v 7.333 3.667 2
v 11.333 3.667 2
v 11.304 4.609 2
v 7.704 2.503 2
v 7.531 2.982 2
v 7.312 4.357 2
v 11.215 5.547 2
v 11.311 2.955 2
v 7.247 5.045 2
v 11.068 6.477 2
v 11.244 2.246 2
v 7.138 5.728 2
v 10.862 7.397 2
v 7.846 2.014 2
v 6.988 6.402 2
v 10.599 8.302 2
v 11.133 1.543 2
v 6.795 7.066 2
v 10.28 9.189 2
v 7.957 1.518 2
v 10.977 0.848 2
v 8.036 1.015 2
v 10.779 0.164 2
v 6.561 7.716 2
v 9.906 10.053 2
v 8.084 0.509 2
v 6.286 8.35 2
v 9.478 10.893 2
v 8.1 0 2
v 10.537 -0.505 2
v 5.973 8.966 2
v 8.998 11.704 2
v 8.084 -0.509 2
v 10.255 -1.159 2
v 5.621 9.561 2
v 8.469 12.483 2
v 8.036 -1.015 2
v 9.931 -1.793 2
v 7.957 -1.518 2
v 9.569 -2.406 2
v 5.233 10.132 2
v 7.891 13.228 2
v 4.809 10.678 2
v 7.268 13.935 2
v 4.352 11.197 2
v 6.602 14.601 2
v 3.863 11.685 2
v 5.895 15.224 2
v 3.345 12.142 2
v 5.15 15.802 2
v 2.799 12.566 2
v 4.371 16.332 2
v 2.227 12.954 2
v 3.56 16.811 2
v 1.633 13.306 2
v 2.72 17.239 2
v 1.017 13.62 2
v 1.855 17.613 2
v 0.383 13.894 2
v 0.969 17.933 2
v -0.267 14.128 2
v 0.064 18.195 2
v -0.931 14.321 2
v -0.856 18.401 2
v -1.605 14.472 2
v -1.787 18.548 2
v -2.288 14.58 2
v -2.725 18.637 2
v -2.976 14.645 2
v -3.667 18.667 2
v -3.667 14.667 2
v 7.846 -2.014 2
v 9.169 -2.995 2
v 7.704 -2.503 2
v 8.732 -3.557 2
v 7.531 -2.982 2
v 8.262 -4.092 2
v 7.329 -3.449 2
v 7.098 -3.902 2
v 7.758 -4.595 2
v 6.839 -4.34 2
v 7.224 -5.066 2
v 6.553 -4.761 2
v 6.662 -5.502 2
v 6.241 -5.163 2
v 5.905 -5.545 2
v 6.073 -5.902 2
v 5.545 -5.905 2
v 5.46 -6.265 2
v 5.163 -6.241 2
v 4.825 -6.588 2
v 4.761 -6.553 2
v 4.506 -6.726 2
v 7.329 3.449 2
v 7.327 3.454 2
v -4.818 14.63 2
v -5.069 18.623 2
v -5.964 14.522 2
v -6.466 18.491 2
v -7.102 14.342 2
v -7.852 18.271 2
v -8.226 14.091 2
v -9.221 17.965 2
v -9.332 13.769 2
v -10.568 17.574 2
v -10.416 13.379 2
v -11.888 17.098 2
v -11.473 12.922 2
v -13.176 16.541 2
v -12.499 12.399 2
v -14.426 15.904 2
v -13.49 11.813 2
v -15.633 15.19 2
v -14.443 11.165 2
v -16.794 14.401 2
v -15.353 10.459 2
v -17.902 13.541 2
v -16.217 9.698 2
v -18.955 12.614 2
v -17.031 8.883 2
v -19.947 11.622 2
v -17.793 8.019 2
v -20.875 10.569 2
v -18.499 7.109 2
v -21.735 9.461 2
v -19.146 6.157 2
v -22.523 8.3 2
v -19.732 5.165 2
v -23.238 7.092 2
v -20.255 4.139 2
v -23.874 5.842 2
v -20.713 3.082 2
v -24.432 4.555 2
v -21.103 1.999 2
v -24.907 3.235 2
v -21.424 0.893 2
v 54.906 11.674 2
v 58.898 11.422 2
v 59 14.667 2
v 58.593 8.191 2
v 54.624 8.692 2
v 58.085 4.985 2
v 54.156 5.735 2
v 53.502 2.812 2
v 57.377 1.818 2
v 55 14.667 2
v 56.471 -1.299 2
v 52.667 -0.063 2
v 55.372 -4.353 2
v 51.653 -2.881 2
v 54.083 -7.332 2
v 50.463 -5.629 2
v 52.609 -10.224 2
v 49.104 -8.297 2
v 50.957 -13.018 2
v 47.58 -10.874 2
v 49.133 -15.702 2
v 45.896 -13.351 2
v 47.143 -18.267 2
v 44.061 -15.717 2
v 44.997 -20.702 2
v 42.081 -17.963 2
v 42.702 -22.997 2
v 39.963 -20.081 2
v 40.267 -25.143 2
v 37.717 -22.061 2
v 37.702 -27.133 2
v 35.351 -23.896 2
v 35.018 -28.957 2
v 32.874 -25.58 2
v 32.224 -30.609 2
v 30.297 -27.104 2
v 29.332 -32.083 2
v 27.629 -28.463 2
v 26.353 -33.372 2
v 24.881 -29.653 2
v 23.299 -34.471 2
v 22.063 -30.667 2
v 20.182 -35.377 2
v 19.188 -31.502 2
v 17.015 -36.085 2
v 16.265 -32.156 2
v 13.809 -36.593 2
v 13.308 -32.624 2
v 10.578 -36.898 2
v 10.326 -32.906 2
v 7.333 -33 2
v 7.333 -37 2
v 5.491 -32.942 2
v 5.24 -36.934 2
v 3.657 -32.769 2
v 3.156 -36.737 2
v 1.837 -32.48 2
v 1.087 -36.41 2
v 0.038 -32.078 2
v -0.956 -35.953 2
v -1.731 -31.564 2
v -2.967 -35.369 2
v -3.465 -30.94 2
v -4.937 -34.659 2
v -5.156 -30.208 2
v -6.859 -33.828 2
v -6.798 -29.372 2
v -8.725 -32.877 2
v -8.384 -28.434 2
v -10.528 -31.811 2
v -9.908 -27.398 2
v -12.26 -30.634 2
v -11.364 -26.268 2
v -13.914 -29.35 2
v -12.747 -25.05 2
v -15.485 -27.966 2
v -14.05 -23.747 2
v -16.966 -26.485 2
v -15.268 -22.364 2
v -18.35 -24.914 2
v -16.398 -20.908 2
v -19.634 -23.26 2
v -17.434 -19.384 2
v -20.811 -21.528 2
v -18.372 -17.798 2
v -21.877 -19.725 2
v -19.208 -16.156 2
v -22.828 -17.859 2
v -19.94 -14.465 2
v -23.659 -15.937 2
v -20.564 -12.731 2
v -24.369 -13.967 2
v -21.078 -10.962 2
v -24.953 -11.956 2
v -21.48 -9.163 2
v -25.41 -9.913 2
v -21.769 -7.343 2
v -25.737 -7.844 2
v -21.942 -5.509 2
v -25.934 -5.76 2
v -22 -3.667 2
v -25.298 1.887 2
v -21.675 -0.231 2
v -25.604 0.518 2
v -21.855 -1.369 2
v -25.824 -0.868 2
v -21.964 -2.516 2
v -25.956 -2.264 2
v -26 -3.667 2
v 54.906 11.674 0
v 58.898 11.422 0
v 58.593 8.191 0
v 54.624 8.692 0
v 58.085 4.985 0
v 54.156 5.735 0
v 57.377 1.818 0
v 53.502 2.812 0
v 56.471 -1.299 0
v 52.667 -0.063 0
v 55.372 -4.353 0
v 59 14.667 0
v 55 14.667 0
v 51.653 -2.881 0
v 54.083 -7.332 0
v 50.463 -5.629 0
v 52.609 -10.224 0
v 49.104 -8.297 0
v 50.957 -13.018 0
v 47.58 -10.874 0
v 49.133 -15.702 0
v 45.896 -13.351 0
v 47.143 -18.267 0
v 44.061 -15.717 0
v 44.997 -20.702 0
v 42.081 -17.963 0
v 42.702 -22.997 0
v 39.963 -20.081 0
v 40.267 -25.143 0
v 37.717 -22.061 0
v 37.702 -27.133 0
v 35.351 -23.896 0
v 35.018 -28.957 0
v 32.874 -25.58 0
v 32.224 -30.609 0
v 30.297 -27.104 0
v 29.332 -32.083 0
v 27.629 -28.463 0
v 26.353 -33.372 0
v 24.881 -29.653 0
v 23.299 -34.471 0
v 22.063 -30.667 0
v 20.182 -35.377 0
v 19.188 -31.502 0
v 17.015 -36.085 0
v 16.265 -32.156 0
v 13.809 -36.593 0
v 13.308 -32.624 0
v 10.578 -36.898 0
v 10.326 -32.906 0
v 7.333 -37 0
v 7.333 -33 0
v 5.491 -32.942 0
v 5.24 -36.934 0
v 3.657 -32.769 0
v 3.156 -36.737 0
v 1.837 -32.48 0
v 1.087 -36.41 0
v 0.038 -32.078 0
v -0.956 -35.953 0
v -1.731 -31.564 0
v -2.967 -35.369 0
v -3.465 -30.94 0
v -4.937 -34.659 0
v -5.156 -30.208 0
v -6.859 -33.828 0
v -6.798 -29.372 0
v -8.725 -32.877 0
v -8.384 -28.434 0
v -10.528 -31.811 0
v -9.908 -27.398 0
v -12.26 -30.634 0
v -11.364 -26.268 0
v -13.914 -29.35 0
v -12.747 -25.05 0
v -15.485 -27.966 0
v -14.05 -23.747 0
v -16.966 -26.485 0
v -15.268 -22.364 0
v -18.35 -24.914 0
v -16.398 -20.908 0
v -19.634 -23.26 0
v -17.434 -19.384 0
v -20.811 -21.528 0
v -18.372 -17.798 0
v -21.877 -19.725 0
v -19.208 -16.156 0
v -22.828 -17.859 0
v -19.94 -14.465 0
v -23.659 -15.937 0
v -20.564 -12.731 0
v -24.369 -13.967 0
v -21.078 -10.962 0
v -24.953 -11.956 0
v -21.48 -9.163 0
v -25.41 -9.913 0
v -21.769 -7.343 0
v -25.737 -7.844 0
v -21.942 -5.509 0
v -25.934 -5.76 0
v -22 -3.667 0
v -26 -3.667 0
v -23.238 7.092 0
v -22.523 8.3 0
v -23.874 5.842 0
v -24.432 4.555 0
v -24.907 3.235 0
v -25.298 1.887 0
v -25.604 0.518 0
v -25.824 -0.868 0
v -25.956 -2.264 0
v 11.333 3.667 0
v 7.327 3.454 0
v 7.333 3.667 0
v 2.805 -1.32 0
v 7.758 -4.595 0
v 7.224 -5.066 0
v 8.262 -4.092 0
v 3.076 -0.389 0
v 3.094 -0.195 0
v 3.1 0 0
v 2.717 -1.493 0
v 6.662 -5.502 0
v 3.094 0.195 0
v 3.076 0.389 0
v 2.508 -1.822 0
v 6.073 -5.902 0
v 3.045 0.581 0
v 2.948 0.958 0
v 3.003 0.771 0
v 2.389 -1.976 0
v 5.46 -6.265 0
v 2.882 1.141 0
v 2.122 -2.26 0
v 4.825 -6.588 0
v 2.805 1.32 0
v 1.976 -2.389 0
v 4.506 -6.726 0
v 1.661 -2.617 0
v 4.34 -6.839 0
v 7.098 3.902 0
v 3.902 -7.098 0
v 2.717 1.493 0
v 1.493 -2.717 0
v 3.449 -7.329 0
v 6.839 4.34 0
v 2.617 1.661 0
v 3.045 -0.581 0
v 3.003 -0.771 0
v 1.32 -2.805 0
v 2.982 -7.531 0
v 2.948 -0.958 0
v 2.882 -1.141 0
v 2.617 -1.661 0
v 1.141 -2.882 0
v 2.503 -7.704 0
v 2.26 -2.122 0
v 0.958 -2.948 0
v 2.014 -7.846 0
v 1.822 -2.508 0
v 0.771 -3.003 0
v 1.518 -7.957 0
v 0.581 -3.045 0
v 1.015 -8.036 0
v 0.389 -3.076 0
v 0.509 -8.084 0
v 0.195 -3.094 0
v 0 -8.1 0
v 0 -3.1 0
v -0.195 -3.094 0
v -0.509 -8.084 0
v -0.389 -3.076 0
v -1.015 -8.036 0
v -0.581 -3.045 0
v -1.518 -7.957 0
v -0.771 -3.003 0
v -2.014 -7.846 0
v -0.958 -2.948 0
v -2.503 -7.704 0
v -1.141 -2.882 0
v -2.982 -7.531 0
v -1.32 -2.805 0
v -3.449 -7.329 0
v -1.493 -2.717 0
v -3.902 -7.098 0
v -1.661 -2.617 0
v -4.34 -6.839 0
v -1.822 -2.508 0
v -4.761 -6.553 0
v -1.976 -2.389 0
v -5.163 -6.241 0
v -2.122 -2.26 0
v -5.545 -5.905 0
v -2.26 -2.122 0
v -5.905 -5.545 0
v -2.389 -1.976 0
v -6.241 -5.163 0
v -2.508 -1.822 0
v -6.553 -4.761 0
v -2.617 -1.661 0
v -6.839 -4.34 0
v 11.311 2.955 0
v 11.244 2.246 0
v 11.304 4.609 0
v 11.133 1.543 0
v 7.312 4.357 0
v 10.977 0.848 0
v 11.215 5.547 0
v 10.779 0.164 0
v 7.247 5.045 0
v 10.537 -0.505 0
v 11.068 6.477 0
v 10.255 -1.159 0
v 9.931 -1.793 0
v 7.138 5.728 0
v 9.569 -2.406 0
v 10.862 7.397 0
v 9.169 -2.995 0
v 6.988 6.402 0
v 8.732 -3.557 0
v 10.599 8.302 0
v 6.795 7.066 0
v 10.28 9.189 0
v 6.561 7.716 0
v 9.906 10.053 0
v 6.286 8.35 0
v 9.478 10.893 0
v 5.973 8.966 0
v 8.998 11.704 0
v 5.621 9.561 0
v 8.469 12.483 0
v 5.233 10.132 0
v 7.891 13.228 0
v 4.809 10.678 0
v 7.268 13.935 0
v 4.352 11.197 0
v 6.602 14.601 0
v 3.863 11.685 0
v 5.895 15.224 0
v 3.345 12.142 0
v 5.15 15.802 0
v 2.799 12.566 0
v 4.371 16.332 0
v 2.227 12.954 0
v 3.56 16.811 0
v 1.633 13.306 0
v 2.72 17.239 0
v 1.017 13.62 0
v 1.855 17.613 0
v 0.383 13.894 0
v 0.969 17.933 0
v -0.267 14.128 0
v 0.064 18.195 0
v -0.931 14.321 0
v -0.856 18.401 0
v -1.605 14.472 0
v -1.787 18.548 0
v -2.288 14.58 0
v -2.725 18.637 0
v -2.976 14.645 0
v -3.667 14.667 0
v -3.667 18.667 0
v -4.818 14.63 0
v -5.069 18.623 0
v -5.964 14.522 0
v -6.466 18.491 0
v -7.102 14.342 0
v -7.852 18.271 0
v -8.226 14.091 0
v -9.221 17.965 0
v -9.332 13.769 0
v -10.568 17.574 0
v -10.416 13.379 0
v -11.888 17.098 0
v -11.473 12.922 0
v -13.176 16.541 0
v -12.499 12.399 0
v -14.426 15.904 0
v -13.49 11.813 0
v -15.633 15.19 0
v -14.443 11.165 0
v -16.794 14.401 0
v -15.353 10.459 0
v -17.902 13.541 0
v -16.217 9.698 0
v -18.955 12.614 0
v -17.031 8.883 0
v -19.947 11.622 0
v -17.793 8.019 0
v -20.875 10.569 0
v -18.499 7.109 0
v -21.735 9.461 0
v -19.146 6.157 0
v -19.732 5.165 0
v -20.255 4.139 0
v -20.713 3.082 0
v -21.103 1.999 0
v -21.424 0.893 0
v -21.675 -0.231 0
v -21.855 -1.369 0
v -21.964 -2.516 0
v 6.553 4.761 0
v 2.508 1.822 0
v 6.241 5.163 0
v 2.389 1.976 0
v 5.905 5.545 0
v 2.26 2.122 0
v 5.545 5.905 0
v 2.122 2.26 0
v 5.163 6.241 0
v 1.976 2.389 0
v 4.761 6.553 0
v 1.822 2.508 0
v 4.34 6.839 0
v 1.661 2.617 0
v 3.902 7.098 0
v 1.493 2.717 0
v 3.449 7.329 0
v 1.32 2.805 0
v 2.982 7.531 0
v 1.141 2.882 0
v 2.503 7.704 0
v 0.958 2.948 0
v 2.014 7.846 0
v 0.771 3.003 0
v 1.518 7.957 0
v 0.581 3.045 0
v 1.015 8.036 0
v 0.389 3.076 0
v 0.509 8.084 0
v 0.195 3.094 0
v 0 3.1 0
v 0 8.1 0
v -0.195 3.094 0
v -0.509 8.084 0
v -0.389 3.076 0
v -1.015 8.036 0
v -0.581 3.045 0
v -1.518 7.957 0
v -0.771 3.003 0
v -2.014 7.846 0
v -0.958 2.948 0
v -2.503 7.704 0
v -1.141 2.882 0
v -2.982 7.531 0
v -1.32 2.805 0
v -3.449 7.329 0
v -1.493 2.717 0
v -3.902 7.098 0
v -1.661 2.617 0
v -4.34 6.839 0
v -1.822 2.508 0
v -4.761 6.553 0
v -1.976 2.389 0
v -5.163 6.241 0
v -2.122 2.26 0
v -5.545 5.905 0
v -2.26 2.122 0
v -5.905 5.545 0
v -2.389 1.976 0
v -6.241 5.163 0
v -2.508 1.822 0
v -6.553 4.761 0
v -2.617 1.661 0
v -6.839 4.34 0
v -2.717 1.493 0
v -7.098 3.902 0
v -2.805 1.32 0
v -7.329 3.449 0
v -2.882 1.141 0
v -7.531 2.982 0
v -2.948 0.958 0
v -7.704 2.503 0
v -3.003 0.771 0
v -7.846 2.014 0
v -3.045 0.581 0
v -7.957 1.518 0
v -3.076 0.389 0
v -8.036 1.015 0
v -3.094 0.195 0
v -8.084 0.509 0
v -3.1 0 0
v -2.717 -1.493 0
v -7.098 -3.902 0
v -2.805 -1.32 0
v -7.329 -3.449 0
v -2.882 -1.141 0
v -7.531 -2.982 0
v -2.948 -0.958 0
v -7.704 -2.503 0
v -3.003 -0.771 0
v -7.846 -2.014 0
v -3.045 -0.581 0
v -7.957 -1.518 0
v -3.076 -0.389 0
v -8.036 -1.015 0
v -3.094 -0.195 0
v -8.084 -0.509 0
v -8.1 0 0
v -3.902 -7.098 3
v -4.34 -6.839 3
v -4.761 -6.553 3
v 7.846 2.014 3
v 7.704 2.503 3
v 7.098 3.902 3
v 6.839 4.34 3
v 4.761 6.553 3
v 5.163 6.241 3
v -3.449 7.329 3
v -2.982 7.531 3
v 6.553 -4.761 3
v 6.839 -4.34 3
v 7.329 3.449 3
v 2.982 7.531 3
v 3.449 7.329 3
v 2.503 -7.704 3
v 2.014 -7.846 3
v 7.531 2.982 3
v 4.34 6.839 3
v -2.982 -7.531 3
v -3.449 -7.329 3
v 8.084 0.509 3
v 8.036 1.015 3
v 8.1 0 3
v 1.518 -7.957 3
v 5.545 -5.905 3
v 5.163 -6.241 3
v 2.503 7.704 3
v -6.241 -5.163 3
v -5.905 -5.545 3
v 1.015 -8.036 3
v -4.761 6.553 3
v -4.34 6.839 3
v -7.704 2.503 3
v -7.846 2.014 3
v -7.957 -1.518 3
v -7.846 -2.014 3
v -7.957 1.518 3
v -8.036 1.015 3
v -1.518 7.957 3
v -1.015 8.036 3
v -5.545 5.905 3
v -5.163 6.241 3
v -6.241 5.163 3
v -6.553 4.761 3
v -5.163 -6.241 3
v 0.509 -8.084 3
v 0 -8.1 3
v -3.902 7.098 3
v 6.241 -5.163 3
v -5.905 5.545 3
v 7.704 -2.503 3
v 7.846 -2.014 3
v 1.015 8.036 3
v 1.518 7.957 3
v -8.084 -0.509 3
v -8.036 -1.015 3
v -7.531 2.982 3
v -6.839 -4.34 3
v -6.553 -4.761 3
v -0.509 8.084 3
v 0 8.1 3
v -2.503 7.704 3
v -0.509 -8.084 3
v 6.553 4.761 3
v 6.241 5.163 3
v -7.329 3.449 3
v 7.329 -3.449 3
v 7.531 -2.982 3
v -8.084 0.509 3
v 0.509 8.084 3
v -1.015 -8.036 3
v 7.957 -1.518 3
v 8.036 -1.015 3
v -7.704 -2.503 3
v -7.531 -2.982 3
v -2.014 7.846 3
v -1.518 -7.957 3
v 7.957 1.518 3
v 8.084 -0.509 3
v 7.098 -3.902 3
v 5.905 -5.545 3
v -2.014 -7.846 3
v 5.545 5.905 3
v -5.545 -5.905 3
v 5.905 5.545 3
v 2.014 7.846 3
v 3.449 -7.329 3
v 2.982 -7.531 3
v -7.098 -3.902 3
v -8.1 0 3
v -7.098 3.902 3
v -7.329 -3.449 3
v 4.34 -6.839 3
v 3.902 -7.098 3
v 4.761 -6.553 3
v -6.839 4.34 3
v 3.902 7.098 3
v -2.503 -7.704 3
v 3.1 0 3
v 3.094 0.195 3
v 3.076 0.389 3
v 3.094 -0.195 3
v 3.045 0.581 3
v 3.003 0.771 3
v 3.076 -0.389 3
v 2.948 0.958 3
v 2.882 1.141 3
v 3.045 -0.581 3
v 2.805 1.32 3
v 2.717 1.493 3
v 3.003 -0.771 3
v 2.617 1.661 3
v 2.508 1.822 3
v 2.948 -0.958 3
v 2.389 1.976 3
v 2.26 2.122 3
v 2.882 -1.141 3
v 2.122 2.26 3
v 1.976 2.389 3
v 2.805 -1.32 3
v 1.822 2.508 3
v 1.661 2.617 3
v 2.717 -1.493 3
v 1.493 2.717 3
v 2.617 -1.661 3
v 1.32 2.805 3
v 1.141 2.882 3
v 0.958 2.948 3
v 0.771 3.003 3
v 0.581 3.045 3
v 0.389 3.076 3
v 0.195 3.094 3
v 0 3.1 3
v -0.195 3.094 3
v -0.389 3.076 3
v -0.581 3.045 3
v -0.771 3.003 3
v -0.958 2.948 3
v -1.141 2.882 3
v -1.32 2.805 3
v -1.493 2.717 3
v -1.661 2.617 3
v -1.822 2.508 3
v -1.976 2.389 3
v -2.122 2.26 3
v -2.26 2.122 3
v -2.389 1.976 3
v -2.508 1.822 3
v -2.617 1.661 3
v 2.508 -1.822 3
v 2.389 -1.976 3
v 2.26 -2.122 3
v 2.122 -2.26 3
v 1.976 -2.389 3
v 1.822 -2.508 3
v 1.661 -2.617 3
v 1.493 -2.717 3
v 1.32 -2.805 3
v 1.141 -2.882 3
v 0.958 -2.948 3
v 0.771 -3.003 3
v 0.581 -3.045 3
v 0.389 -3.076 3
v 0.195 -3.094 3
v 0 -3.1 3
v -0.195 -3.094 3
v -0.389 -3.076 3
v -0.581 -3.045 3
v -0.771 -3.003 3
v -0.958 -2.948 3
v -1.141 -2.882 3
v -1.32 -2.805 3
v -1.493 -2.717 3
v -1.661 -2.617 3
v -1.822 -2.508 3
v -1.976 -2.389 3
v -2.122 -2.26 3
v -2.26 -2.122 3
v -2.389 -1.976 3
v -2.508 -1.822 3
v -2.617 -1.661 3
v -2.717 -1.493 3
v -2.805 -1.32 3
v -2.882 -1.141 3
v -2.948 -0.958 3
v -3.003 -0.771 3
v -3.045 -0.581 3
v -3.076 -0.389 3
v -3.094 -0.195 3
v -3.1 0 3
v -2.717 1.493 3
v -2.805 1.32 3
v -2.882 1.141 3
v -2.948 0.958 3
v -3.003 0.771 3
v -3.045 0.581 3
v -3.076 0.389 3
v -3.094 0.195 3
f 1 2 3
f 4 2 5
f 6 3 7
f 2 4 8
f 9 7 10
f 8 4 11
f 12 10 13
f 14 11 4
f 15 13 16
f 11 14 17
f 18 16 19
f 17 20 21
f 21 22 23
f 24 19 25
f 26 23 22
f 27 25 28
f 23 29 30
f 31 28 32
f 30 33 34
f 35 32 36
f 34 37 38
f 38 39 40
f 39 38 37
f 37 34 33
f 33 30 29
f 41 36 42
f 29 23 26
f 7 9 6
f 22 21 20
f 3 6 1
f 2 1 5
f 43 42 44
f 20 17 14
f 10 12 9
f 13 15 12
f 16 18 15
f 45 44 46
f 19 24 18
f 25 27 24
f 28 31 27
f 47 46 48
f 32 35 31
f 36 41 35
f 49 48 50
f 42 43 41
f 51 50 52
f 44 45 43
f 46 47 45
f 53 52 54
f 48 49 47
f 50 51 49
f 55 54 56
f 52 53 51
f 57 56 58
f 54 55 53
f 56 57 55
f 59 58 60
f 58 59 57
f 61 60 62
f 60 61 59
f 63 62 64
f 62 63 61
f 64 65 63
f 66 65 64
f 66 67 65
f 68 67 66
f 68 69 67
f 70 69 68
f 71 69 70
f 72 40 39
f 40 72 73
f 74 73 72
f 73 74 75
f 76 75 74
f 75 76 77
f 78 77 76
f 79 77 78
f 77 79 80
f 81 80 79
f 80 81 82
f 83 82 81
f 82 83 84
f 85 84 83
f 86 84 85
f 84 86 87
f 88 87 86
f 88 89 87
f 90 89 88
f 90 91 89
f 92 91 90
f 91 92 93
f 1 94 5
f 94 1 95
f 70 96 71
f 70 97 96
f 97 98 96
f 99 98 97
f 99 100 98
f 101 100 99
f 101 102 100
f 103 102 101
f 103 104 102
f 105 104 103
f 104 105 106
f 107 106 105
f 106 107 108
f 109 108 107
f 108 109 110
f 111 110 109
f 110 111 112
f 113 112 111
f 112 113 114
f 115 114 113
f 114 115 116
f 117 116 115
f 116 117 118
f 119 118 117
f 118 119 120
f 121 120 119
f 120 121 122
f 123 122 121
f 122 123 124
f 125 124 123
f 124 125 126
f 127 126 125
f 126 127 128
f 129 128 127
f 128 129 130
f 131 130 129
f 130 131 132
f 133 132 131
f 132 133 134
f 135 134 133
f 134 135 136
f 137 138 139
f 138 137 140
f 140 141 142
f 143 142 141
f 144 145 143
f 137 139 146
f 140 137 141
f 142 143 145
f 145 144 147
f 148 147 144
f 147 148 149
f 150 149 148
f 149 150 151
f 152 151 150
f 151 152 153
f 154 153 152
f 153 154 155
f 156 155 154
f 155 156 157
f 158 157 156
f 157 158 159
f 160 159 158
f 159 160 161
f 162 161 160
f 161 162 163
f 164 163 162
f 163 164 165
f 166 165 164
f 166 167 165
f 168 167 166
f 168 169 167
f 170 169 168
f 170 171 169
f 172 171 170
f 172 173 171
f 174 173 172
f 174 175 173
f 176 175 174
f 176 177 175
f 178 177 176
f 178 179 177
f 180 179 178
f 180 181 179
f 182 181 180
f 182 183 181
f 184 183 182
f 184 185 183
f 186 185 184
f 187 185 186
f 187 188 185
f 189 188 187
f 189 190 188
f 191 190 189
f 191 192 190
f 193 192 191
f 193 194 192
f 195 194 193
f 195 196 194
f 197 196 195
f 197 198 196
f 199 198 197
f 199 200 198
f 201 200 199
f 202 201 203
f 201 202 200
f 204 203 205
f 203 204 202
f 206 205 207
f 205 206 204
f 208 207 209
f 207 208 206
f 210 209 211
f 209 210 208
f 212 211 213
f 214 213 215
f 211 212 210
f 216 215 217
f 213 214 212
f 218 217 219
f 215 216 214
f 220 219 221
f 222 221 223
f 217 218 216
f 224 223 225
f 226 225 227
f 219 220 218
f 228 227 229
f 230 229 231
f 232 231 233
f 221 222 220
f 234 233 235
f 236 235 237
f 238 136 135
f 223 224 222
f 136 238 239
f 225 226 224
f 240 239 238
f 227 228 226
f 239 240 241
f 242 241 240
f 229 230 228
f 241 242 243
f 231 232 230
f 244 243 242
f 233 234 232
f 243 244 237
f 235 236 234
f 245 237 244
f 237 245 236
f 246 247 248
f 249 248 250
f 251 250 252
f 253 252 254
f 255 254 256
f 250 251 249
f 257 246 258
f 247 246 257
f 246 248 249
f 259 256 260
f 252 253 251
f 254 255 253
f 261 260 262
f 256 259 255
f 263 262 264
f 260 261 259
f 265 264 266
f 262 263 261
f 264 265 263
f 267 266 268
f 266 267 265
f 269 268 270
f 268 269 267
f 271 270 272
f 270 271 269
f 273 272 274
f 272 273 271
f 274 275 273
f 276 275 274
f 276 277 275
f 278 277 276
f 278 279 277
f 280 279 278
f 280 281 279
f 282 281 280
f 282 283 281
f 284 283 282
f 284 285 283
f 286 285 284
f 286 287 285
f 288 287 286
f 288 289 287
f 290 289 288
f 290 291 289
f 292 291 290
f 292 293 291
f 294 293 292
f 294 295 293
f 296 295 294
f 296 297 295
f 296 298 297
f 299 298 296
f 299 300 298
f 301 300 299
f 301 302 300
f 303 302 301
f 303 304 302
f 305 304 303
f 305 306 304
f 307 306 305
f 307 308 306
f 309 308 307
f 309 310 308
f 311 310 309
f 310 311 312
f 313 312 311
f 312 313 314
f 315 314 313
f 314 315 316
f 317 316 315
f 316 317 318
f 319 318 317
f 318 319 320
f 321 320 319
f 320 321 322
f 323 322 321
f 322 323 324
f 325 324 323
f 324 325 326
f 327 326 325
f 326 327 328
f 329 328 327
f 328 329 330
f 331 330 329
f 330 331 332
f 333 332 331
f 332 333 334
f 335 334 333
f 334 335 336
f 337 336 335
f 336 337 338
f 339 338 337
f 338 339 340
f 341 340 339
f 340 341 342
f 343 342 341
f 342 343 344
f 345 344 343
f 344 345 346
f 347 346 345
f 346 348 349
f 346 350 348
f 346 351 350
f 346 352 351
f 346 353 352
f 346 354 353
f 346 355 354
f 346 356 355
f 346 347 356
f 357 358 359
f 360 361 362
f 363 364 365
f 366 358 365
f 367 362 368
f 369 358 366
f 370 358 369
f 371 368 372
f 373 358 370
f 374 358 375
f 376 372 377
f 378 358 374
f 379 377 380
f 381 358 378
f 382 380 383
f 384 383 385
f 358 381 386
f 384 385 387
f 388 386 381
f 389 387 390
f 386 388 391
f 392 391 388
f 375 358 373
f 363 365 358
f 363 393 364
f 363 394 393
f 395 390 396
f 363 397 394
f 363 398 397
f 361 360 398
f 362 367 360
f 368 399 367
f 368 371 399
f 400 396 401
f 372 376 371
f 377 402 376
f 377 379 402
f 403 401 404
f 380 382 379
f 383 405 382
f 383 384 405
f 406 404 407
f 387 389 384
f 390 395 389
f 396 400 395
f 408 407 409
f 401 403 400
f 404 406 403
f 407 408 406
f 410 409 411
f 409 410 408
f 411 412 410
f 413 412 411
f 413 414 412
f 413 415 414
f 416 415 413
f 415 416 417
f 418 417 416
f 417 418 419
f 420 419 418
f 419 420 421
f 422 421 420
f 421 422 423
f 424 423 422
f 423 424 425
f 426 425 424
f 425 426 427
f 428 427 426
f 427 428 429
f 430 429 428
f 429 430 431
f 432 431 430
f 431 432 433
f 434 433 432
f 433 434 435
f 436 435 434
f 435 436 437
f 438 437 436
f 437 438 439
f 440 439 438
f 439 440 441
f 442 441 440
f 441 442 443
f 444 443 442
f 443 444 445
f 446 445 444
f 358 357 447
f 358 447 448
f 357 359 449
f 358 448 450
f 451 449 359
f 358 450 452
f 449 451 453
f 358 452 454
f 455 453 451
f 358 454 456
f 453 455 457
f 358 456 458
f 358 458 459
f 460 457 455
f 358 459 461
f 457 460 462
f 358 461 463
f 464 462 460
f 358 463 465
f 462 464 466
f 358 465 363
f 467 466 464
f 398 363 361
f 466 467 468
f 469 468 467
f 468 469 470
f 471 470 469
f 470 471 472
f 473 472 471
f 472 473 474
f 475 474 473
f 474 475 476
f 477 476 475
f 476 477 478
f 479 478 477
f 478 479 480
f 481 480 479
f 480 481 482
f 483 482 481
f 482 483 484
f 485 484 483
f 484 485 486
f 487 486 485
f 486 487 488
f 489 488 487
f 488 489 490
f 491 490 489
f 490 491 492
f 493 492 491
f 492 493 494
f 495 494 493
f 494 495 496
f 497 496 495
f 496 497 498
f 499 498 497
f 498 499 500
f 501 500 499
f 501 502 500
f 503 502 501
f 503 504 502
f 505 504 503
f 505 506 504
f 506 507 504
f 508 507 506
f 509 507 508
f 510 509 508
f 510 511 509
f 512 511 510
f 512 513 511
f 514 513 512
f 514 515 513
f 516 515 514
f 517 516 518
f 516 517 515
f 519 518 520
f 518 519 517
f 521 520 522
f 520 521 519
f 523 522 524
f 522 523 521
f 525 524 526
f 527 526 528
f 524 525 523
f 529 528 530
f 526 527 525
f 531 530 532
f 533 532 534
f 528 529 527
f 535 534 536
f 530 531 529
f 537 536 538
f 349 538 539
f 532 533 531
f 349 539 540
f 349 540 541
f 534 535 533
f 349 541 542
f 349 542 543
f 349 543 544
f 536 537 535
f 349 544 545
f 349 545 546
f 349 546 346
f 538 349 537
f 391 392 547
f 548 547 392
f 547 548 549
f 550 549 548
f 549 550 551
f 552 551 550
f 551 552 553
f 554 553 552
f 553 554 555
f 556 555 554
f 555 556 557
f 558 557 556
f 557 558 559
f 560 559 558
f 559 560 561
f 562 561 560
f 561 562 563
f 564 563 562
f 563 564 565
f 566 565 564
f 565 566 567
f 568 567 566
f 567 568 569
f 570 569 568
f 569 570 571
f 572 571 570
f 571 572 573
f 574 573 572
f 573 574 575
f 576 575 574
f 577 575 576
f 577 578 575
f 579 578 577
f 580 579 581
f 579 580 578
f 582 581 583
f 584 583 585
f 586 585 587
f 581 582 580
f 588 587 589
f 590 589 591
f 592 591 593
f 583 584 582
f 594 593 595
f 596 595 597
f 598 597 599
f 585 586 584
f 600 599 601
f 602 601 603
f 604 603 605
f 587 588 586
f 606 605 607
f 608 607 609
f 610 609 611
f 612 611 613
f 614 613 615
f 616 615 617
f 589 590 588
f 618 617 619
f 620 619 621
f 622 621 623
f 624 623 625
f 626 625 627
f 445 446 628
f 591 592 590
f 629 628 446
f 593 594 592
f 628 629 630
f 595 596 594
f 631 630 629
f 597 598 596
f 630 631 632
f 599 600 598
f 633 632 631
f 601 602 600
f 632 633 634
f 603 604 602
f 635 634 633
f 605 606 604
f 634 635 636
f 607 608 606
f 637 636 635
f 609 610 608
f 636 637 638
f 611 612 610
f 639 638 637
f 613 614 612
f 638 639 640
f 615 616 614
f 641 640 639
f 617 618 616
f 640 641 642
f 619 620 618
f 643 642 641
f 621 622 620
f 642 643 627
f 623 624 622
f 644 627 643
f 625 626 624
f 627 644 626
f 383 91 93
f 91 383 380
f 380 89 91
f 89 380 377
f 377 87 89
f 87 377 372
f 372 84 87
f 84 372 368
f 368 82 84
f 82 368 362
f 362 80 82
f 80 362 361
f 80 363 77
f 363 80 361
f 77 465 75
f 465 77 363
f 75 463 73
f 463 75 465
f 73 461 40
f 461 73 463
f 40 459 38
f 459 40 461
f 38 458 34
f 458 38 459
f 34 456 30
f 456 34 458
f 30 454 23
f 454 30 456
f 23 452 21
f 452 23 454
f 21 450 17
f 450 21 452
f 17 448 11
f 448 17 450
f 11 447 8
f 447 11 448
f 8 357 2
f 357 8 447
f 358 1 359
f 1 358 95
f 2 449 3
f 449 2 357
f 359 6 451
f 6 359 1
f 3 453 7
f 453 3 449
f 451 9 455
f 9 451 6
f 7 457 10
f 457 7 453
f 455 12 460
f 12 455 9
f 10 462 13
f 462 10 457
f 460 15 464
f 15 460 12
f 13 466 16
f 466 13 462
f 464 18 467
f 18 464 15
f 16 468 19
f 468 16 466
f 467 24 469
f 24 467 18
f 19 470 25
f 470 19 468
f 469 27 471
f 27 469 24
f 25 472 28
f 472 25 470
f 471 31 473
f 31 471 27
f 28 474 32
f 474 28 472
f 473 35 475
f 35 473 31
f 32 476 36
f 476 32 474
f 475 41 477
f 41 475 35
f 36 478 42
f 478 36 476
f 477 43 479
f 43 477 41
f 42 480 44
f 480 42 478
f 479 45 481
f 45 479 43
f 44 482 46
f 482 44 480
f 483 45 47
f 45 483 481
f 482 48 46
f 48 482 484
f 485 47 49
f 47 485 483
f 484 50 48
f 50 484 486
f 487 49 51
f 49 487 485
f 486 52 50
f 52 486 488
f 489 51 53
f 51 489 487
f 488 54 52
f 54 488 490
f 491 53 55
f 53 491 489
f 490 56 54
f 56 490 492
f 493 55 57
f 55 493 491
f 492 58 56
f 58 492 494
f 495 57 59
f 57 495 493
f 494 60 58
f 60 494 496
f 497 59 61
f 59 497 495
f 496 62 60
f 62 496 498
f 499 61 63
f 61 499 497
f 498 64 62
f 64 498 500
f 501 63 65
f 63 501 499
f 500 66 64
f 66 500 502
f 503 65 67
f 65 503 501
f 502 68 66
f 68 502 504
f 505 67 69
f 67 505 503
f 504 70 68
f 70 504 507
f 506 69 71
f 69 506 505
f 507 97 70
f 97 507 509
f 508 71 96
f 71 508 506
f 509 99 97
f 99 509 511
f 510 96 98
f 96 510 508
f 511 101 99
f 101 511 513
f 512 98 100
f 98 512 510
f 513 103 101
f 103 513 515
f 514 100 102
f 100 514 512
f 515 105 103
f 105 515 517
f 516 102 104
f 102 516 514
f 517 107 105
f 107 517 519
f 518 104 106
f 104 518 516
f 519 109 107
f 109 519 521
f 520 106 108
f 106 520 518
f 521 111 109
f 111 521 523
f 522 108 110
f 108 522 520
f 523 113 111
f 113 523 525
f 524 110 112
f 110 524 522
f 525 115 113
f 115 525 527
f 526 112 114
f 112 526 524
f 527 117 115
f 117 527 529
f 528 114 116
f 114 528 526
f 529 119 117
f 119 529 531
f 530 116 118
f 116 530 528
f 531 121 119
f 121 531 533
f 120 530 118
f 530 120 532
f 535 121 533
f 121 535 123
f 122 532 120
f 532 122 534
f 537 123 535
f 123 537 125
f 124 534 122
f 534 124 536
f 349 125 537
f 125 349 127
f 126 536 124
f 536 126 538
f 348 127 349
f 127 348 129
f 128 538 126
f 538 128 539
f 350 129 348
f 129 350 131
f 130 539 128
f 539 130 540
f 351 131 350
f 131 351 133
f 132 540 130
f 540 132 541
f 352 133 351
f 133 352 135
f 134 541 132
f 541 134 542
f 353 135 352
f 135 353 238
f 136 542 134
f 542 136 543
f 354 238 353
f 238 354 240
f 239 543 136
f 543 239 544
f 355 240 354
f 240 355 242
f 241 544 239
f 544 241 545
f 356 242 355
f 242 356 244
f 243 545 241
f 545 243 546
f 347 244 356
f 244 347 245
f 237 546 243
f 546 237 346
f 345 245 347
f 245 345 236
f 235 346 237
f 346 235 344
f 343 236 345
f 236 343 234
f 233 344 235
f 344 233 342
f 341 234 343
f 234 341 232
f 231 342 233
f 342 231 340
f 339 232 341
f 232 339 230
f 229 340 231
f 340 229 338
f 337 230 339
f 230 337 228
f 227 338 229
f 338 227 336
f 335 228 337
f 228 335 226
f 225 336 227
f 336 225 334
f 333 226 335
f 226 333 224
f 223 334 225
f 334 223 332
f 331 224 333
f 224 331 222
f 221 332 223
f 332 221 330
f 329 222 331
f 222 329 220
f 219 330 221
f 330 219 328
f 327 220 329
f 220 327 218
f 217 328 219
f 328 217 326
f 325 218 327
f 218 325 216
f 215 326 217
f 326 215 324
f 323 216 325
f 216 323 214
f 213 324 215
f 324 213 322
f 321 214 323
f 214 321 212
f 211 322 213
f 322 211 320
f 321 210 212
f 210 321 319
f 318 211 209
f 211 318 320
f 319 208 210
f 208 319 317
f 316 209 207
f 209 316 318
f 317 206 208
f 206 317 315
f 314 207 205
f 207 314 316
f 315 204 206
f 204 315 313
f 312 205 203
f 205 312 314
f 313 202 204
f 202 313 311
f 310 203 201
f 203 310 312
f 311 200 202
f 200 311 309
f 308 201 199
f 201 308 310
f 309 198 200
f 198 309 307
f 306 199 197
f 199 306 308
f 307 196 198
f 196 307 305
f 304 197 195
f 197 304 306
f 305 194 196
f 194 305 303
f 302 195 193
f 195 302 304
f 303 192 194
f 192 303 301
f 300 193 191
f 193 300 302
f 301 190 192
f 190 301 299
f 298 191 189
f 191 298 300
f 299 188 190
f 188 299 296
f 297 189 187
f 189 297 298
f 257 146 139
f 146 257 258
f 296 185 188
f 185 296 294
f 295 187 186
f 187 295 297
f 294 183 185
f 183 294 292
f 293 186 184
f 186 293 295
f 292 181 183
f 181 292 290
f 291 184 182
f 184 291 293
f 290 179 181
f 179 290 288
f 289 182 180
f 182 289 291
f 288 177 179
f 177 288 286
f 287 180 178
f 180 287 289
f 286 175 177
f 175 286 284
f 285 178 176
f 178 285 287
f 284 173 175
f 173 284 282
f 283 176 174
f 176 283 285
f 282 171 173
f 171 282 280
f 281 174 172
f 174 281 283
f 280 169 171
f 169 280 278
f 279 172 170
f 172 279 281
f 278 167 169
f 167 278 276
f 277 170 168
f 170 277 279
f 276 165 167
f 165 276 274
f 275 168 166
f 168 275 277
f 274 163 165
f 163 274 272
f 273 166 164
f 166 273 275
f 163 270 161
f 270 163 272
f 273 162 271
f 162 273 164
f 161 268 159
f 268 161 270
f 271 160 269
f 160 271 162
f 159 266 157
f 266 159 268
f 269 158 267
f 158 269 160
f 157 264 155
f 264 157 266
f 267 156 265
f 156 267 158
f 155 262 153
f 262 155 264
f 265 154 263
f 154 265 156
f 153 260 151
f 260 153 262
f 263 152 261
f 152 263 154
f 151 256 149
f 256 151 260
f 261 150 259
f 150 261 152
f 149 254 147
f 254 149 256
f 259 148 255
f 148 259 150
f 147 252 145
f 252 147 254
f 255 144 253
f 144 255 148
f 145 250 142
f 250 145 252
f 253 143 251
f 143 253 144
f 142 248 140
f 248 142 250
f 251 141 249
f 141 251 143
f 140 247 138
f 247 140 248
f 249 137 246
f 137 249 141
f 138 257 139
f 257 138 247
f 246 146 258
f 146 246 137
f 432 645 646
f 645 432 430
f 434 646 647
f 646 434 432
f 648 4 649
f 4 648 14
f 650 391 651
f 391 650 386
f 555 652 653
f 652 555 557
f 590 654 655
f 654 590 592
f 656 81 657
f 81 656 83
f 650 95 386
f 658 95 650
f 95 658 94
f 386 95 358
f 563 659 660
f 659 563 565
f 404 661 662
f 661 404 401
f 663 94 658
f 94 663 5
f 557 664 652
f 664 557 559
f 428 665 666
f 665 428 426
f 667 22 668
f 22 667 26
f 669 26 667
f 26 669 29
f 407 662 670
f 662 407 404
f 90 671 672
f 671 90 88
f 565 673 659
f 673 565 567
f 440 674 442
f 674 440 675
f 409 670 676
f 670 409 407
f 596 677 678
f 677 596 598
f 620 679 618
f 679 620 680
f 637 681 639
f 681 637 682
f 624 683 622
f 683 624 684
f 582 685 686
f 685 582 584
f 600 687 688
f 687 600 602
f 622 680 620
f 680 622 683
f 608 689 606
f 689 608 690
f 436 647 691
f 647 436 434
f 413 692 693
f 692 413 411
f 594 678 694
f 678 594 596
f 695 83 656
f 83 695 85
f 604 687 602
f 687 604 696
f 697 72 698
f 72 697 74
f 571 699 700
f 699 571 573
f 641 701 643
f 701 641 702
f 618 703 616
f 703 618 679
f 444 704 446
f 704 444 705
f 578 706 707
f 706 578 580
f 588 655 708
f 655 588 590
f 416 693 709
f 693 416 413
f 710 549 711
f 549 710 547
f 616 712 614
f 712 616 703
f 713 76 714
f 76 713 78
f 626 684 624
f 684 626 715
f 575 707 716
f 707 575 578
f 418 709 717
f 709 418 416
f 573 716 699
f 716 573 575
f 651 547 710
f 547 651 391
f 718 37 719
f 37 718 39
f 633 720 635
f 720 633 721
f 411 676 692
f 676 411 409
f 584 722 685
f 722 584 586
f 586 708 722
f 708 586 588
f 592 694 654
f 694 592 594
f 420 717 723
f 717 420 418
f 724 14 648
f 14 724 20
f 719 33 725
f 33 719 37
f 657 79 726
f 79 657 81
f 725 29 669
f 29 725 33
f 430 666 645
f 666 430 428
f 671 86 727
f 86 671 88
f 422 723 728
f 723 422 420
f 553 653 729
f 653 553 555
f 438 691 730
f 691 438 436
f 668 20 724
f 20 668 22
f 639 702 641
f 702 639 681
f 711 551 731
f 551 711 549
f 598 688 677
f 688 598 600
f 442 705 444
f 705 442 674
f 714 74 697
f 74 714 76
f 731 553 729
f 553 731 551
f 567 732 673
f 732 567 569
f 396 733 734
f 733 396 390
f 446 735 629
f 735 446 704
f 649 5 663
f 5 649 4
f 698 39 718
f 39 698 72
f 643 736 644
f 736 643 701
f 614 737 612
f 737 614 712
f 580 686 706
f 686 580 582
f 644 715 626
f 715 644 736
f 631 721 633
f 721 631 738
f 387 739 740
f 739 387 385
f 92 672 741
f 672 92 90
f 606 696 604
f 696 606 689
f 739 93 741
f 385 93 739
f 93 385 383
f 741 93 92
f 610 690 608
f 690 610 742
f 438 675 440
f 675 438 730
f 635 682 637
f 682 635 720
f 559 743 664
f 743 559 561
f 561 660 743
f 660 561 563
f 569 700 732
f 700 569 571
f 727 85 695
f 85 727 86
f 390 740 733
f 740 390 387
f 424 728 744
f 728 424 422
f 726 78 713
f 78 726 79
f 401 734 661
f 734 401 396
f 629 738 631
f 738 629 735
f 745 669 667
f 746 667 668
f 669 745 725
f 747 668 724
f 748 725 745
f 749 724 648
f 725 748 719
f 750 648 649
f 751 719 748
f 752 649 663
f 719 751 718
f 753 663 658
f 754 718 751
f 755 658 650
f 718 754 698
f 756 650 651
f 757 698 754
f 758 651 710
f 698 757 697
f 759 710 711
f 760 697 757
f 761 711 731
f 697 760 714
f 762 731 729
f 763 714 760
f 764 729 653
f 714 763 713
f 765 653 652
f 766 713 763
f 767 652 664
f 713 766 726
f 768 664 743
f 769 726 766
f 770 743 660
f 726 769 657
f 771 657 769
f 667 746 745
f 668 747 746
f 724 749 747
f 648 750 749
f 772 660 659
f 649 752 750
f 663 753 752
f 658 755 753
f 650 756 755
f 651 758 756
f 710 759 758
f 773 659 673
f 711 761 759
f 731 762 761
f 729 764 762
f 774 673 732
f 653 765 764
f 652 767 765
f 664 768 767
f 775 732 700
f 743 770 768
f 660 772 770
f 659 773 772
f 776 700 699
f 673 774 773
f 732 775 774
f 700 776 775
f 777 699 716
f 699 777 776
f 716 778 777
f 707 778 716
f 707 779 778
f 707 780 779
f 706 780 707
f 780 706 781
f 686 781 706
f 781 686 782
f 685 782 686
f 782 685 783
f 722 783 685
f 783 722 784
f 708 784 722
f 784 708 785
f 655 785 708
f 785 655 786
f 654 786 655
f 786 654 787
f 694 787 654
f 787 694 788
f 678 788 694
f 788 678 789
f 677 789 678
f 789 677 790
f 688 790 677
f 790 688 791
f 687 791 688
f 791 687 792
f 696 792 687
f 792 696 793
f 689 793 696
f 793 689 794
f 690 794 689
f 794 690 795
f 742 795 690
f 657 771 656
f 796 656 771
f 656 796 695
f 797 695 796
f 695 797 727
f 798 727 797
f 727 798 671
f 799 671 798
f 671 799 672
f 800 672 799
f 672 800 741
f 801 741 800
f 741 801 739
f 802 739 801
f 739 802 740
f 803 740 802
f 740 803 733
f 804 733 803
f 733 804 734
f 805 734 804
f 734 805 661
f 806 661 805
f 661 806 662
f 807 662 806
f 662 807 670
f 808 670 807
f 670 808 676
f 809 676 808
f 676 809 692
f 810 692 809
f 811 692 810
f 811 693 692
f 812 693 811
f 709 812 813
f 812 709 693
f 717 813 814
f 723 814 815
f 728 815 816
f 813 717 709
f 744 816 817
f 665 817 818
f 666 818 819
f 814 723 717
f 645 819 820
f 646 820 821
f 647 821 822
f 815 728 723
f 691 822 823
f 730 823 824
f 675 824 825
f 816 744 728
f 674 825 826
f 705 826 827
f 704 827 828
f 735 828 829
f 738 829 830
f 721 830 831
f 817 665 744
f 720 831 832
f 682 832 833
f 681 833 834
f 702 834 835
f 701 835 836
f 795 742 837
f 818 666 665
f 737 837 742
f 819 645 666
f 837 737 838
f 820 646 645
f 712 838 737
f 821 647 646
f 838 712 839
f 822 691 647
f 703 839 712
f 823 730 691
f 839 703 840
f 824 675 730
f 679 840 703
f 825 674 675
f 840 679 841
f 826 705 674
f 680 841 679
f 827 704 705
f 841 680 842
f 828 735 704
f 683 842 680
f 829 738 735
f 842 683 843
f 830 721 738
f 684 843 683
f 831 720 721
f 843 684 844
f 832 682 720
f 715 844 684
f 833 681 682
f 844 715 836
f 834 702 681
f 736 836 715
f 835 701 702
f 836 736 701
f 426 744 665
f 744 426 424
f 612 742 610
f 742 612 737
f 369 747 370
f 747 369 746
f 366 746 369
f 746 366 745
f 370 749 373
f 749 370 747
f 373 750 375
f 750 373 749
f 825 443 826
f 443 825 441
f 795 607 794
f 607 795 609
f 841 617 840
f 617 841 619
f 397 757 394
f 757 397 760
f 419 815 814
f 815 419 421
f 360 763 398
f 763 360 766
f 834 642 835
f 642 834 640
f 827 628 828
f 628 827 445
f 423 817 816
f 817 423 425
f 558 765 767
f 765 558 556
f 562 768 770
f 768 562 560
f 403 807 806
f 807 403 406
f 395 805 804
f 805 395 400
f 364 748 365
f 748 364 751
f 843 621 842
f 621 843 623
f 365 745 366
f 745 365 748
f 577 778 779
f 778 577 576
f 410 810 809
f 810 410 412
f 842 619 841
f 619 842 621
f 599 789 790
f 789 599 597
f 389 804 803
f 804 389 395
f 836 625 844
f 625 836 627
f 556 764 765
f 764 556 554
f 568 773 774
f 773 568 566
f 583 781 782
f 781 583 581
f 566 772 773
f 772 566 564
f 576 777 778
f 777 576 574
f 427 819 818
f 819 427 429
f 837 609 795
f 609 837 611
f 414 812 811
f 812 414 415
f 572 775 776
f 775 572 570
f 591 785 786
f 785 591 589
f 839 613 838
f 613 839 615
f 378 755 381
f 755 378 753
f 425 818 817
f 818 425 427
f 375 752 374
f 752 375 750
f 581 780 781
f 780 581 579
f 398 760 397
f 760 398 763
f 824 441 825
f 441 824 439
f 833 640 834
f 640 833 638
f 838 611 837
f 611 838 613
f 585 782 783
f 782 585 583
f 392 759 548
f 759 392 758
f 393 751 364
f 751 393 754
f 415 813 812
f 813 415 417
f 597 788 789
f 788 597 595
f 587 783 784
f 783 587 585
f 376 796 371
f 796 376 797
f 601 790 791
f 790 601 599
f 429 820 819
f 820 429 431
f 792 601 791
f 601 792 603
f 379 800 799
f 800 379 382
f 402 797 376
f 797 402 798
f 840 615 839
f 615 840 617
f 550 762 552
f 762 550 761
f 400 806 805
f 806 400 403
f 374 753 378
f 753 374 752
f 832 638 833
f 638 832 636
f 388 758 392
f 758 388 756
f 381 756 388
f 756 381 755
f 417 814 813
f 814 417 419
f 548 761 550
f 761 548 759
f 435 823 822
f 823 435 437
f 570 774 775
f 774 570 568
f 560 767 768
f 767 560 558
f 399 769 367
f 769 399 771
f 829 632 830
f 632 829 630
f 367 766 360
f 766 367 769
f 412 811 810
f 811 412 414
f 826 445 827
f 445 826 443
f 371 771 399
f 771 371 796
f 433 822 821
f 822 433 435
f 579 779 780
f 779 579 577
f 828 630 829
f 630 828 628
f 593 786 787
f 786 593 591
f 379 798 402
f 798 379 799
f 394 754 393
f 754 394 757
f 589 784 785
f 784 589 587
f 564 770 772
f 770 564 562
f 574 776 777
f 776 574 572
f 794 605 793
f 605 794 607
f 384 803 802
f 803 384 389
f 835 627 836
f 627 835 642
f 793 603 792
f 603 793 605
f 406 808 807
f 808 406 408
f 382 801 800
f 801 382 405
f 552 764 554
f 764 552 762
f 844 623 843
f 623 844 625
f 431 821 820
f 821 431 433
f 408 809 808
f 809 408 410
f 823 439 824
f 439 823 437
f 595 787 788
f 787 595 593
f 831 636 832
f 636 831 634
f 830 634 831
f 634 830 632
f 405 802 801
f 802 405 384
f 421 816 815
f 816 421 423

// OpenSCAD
/*
    Title: FibonacciHand.scad
    Description: Spiral shaped clock hand.
    Author: Matias Micheletto
    Date: 21-Jun-2021
    Email: matias.micheletto@uns.edu.ar
    Website: https://matiasmicheletto.github.io
*/

$fn = 100; // Model resolution

x = 55; // Spiral length from center to border
sections = 7; // Spiral sections
width = 4; // Width of hand
height = 2; // Thickness of the hand
shaft_r = 3.1; // Shaft inner radius
shaft_h = 3; // Shaft height


// Fibonacci function
function fibonacci(n) = 
    n < 2 ? n : fibonacci(n - 1) + fibonacci(n - 2);

// This function calculates the value of 
// the scaler so that the spiral of "n" sections 
// have a desired total length of "x" mm.
function get_scale(x, n) =
    let (k = n+3) // Span 3 first elements
    let (r = k%2==0 ? 
        fibonacci(k/2) * fibonacci(k/2-1)
        : 
        pow(fibonacci((k-1)/2),2)
    )
    x/r;
    
// Then we use it here to obtain the correct scale:
scale = get_scale(x, sections);
echo("Scale",scale);
    
// Draw a quarter circle spiral section of radius fibonacci(n)
module section(n) {
    rotate_extrude(angle = 90, convexity = 10)
    translate([scale*fibonacci(n), 0, 0])
    square(size = [width, height]);
}

// X and Y translations for make continuous sections
// These are empirical, no clue where do they come from but works fine.
function translate_y(n) =
    ((n-1) % 4 < 2 ? -1:1) * pow(fibonacci(floor((n-1)/2)),2);
    
function translate_x(n) =   
    (n % 4 < 2 ? -1:1) * fibonacci(floor(n/2)) * fibonacci(floor(n/2)-1);

// Draw spiral positioning the sections correctly
module spiral(){
    for(n=[1:sections]){
        translate(scale*[translate_x(n), translate_y(n), 0])
        rotate((n % 4) * 90)
            section(n);
    }
}

// This is the center cylinder of the hand that is mounted to
// the hour shaft of the clock. The outer radius should be corrected
module shaft() {
    difference(){
        cylinder(r = shaft_r + width + 1, h = shaft_h);
        cylinder(r = shaft_r, h = shaft_h);
    }
}

// Draw everything
spiral();
shaft();
